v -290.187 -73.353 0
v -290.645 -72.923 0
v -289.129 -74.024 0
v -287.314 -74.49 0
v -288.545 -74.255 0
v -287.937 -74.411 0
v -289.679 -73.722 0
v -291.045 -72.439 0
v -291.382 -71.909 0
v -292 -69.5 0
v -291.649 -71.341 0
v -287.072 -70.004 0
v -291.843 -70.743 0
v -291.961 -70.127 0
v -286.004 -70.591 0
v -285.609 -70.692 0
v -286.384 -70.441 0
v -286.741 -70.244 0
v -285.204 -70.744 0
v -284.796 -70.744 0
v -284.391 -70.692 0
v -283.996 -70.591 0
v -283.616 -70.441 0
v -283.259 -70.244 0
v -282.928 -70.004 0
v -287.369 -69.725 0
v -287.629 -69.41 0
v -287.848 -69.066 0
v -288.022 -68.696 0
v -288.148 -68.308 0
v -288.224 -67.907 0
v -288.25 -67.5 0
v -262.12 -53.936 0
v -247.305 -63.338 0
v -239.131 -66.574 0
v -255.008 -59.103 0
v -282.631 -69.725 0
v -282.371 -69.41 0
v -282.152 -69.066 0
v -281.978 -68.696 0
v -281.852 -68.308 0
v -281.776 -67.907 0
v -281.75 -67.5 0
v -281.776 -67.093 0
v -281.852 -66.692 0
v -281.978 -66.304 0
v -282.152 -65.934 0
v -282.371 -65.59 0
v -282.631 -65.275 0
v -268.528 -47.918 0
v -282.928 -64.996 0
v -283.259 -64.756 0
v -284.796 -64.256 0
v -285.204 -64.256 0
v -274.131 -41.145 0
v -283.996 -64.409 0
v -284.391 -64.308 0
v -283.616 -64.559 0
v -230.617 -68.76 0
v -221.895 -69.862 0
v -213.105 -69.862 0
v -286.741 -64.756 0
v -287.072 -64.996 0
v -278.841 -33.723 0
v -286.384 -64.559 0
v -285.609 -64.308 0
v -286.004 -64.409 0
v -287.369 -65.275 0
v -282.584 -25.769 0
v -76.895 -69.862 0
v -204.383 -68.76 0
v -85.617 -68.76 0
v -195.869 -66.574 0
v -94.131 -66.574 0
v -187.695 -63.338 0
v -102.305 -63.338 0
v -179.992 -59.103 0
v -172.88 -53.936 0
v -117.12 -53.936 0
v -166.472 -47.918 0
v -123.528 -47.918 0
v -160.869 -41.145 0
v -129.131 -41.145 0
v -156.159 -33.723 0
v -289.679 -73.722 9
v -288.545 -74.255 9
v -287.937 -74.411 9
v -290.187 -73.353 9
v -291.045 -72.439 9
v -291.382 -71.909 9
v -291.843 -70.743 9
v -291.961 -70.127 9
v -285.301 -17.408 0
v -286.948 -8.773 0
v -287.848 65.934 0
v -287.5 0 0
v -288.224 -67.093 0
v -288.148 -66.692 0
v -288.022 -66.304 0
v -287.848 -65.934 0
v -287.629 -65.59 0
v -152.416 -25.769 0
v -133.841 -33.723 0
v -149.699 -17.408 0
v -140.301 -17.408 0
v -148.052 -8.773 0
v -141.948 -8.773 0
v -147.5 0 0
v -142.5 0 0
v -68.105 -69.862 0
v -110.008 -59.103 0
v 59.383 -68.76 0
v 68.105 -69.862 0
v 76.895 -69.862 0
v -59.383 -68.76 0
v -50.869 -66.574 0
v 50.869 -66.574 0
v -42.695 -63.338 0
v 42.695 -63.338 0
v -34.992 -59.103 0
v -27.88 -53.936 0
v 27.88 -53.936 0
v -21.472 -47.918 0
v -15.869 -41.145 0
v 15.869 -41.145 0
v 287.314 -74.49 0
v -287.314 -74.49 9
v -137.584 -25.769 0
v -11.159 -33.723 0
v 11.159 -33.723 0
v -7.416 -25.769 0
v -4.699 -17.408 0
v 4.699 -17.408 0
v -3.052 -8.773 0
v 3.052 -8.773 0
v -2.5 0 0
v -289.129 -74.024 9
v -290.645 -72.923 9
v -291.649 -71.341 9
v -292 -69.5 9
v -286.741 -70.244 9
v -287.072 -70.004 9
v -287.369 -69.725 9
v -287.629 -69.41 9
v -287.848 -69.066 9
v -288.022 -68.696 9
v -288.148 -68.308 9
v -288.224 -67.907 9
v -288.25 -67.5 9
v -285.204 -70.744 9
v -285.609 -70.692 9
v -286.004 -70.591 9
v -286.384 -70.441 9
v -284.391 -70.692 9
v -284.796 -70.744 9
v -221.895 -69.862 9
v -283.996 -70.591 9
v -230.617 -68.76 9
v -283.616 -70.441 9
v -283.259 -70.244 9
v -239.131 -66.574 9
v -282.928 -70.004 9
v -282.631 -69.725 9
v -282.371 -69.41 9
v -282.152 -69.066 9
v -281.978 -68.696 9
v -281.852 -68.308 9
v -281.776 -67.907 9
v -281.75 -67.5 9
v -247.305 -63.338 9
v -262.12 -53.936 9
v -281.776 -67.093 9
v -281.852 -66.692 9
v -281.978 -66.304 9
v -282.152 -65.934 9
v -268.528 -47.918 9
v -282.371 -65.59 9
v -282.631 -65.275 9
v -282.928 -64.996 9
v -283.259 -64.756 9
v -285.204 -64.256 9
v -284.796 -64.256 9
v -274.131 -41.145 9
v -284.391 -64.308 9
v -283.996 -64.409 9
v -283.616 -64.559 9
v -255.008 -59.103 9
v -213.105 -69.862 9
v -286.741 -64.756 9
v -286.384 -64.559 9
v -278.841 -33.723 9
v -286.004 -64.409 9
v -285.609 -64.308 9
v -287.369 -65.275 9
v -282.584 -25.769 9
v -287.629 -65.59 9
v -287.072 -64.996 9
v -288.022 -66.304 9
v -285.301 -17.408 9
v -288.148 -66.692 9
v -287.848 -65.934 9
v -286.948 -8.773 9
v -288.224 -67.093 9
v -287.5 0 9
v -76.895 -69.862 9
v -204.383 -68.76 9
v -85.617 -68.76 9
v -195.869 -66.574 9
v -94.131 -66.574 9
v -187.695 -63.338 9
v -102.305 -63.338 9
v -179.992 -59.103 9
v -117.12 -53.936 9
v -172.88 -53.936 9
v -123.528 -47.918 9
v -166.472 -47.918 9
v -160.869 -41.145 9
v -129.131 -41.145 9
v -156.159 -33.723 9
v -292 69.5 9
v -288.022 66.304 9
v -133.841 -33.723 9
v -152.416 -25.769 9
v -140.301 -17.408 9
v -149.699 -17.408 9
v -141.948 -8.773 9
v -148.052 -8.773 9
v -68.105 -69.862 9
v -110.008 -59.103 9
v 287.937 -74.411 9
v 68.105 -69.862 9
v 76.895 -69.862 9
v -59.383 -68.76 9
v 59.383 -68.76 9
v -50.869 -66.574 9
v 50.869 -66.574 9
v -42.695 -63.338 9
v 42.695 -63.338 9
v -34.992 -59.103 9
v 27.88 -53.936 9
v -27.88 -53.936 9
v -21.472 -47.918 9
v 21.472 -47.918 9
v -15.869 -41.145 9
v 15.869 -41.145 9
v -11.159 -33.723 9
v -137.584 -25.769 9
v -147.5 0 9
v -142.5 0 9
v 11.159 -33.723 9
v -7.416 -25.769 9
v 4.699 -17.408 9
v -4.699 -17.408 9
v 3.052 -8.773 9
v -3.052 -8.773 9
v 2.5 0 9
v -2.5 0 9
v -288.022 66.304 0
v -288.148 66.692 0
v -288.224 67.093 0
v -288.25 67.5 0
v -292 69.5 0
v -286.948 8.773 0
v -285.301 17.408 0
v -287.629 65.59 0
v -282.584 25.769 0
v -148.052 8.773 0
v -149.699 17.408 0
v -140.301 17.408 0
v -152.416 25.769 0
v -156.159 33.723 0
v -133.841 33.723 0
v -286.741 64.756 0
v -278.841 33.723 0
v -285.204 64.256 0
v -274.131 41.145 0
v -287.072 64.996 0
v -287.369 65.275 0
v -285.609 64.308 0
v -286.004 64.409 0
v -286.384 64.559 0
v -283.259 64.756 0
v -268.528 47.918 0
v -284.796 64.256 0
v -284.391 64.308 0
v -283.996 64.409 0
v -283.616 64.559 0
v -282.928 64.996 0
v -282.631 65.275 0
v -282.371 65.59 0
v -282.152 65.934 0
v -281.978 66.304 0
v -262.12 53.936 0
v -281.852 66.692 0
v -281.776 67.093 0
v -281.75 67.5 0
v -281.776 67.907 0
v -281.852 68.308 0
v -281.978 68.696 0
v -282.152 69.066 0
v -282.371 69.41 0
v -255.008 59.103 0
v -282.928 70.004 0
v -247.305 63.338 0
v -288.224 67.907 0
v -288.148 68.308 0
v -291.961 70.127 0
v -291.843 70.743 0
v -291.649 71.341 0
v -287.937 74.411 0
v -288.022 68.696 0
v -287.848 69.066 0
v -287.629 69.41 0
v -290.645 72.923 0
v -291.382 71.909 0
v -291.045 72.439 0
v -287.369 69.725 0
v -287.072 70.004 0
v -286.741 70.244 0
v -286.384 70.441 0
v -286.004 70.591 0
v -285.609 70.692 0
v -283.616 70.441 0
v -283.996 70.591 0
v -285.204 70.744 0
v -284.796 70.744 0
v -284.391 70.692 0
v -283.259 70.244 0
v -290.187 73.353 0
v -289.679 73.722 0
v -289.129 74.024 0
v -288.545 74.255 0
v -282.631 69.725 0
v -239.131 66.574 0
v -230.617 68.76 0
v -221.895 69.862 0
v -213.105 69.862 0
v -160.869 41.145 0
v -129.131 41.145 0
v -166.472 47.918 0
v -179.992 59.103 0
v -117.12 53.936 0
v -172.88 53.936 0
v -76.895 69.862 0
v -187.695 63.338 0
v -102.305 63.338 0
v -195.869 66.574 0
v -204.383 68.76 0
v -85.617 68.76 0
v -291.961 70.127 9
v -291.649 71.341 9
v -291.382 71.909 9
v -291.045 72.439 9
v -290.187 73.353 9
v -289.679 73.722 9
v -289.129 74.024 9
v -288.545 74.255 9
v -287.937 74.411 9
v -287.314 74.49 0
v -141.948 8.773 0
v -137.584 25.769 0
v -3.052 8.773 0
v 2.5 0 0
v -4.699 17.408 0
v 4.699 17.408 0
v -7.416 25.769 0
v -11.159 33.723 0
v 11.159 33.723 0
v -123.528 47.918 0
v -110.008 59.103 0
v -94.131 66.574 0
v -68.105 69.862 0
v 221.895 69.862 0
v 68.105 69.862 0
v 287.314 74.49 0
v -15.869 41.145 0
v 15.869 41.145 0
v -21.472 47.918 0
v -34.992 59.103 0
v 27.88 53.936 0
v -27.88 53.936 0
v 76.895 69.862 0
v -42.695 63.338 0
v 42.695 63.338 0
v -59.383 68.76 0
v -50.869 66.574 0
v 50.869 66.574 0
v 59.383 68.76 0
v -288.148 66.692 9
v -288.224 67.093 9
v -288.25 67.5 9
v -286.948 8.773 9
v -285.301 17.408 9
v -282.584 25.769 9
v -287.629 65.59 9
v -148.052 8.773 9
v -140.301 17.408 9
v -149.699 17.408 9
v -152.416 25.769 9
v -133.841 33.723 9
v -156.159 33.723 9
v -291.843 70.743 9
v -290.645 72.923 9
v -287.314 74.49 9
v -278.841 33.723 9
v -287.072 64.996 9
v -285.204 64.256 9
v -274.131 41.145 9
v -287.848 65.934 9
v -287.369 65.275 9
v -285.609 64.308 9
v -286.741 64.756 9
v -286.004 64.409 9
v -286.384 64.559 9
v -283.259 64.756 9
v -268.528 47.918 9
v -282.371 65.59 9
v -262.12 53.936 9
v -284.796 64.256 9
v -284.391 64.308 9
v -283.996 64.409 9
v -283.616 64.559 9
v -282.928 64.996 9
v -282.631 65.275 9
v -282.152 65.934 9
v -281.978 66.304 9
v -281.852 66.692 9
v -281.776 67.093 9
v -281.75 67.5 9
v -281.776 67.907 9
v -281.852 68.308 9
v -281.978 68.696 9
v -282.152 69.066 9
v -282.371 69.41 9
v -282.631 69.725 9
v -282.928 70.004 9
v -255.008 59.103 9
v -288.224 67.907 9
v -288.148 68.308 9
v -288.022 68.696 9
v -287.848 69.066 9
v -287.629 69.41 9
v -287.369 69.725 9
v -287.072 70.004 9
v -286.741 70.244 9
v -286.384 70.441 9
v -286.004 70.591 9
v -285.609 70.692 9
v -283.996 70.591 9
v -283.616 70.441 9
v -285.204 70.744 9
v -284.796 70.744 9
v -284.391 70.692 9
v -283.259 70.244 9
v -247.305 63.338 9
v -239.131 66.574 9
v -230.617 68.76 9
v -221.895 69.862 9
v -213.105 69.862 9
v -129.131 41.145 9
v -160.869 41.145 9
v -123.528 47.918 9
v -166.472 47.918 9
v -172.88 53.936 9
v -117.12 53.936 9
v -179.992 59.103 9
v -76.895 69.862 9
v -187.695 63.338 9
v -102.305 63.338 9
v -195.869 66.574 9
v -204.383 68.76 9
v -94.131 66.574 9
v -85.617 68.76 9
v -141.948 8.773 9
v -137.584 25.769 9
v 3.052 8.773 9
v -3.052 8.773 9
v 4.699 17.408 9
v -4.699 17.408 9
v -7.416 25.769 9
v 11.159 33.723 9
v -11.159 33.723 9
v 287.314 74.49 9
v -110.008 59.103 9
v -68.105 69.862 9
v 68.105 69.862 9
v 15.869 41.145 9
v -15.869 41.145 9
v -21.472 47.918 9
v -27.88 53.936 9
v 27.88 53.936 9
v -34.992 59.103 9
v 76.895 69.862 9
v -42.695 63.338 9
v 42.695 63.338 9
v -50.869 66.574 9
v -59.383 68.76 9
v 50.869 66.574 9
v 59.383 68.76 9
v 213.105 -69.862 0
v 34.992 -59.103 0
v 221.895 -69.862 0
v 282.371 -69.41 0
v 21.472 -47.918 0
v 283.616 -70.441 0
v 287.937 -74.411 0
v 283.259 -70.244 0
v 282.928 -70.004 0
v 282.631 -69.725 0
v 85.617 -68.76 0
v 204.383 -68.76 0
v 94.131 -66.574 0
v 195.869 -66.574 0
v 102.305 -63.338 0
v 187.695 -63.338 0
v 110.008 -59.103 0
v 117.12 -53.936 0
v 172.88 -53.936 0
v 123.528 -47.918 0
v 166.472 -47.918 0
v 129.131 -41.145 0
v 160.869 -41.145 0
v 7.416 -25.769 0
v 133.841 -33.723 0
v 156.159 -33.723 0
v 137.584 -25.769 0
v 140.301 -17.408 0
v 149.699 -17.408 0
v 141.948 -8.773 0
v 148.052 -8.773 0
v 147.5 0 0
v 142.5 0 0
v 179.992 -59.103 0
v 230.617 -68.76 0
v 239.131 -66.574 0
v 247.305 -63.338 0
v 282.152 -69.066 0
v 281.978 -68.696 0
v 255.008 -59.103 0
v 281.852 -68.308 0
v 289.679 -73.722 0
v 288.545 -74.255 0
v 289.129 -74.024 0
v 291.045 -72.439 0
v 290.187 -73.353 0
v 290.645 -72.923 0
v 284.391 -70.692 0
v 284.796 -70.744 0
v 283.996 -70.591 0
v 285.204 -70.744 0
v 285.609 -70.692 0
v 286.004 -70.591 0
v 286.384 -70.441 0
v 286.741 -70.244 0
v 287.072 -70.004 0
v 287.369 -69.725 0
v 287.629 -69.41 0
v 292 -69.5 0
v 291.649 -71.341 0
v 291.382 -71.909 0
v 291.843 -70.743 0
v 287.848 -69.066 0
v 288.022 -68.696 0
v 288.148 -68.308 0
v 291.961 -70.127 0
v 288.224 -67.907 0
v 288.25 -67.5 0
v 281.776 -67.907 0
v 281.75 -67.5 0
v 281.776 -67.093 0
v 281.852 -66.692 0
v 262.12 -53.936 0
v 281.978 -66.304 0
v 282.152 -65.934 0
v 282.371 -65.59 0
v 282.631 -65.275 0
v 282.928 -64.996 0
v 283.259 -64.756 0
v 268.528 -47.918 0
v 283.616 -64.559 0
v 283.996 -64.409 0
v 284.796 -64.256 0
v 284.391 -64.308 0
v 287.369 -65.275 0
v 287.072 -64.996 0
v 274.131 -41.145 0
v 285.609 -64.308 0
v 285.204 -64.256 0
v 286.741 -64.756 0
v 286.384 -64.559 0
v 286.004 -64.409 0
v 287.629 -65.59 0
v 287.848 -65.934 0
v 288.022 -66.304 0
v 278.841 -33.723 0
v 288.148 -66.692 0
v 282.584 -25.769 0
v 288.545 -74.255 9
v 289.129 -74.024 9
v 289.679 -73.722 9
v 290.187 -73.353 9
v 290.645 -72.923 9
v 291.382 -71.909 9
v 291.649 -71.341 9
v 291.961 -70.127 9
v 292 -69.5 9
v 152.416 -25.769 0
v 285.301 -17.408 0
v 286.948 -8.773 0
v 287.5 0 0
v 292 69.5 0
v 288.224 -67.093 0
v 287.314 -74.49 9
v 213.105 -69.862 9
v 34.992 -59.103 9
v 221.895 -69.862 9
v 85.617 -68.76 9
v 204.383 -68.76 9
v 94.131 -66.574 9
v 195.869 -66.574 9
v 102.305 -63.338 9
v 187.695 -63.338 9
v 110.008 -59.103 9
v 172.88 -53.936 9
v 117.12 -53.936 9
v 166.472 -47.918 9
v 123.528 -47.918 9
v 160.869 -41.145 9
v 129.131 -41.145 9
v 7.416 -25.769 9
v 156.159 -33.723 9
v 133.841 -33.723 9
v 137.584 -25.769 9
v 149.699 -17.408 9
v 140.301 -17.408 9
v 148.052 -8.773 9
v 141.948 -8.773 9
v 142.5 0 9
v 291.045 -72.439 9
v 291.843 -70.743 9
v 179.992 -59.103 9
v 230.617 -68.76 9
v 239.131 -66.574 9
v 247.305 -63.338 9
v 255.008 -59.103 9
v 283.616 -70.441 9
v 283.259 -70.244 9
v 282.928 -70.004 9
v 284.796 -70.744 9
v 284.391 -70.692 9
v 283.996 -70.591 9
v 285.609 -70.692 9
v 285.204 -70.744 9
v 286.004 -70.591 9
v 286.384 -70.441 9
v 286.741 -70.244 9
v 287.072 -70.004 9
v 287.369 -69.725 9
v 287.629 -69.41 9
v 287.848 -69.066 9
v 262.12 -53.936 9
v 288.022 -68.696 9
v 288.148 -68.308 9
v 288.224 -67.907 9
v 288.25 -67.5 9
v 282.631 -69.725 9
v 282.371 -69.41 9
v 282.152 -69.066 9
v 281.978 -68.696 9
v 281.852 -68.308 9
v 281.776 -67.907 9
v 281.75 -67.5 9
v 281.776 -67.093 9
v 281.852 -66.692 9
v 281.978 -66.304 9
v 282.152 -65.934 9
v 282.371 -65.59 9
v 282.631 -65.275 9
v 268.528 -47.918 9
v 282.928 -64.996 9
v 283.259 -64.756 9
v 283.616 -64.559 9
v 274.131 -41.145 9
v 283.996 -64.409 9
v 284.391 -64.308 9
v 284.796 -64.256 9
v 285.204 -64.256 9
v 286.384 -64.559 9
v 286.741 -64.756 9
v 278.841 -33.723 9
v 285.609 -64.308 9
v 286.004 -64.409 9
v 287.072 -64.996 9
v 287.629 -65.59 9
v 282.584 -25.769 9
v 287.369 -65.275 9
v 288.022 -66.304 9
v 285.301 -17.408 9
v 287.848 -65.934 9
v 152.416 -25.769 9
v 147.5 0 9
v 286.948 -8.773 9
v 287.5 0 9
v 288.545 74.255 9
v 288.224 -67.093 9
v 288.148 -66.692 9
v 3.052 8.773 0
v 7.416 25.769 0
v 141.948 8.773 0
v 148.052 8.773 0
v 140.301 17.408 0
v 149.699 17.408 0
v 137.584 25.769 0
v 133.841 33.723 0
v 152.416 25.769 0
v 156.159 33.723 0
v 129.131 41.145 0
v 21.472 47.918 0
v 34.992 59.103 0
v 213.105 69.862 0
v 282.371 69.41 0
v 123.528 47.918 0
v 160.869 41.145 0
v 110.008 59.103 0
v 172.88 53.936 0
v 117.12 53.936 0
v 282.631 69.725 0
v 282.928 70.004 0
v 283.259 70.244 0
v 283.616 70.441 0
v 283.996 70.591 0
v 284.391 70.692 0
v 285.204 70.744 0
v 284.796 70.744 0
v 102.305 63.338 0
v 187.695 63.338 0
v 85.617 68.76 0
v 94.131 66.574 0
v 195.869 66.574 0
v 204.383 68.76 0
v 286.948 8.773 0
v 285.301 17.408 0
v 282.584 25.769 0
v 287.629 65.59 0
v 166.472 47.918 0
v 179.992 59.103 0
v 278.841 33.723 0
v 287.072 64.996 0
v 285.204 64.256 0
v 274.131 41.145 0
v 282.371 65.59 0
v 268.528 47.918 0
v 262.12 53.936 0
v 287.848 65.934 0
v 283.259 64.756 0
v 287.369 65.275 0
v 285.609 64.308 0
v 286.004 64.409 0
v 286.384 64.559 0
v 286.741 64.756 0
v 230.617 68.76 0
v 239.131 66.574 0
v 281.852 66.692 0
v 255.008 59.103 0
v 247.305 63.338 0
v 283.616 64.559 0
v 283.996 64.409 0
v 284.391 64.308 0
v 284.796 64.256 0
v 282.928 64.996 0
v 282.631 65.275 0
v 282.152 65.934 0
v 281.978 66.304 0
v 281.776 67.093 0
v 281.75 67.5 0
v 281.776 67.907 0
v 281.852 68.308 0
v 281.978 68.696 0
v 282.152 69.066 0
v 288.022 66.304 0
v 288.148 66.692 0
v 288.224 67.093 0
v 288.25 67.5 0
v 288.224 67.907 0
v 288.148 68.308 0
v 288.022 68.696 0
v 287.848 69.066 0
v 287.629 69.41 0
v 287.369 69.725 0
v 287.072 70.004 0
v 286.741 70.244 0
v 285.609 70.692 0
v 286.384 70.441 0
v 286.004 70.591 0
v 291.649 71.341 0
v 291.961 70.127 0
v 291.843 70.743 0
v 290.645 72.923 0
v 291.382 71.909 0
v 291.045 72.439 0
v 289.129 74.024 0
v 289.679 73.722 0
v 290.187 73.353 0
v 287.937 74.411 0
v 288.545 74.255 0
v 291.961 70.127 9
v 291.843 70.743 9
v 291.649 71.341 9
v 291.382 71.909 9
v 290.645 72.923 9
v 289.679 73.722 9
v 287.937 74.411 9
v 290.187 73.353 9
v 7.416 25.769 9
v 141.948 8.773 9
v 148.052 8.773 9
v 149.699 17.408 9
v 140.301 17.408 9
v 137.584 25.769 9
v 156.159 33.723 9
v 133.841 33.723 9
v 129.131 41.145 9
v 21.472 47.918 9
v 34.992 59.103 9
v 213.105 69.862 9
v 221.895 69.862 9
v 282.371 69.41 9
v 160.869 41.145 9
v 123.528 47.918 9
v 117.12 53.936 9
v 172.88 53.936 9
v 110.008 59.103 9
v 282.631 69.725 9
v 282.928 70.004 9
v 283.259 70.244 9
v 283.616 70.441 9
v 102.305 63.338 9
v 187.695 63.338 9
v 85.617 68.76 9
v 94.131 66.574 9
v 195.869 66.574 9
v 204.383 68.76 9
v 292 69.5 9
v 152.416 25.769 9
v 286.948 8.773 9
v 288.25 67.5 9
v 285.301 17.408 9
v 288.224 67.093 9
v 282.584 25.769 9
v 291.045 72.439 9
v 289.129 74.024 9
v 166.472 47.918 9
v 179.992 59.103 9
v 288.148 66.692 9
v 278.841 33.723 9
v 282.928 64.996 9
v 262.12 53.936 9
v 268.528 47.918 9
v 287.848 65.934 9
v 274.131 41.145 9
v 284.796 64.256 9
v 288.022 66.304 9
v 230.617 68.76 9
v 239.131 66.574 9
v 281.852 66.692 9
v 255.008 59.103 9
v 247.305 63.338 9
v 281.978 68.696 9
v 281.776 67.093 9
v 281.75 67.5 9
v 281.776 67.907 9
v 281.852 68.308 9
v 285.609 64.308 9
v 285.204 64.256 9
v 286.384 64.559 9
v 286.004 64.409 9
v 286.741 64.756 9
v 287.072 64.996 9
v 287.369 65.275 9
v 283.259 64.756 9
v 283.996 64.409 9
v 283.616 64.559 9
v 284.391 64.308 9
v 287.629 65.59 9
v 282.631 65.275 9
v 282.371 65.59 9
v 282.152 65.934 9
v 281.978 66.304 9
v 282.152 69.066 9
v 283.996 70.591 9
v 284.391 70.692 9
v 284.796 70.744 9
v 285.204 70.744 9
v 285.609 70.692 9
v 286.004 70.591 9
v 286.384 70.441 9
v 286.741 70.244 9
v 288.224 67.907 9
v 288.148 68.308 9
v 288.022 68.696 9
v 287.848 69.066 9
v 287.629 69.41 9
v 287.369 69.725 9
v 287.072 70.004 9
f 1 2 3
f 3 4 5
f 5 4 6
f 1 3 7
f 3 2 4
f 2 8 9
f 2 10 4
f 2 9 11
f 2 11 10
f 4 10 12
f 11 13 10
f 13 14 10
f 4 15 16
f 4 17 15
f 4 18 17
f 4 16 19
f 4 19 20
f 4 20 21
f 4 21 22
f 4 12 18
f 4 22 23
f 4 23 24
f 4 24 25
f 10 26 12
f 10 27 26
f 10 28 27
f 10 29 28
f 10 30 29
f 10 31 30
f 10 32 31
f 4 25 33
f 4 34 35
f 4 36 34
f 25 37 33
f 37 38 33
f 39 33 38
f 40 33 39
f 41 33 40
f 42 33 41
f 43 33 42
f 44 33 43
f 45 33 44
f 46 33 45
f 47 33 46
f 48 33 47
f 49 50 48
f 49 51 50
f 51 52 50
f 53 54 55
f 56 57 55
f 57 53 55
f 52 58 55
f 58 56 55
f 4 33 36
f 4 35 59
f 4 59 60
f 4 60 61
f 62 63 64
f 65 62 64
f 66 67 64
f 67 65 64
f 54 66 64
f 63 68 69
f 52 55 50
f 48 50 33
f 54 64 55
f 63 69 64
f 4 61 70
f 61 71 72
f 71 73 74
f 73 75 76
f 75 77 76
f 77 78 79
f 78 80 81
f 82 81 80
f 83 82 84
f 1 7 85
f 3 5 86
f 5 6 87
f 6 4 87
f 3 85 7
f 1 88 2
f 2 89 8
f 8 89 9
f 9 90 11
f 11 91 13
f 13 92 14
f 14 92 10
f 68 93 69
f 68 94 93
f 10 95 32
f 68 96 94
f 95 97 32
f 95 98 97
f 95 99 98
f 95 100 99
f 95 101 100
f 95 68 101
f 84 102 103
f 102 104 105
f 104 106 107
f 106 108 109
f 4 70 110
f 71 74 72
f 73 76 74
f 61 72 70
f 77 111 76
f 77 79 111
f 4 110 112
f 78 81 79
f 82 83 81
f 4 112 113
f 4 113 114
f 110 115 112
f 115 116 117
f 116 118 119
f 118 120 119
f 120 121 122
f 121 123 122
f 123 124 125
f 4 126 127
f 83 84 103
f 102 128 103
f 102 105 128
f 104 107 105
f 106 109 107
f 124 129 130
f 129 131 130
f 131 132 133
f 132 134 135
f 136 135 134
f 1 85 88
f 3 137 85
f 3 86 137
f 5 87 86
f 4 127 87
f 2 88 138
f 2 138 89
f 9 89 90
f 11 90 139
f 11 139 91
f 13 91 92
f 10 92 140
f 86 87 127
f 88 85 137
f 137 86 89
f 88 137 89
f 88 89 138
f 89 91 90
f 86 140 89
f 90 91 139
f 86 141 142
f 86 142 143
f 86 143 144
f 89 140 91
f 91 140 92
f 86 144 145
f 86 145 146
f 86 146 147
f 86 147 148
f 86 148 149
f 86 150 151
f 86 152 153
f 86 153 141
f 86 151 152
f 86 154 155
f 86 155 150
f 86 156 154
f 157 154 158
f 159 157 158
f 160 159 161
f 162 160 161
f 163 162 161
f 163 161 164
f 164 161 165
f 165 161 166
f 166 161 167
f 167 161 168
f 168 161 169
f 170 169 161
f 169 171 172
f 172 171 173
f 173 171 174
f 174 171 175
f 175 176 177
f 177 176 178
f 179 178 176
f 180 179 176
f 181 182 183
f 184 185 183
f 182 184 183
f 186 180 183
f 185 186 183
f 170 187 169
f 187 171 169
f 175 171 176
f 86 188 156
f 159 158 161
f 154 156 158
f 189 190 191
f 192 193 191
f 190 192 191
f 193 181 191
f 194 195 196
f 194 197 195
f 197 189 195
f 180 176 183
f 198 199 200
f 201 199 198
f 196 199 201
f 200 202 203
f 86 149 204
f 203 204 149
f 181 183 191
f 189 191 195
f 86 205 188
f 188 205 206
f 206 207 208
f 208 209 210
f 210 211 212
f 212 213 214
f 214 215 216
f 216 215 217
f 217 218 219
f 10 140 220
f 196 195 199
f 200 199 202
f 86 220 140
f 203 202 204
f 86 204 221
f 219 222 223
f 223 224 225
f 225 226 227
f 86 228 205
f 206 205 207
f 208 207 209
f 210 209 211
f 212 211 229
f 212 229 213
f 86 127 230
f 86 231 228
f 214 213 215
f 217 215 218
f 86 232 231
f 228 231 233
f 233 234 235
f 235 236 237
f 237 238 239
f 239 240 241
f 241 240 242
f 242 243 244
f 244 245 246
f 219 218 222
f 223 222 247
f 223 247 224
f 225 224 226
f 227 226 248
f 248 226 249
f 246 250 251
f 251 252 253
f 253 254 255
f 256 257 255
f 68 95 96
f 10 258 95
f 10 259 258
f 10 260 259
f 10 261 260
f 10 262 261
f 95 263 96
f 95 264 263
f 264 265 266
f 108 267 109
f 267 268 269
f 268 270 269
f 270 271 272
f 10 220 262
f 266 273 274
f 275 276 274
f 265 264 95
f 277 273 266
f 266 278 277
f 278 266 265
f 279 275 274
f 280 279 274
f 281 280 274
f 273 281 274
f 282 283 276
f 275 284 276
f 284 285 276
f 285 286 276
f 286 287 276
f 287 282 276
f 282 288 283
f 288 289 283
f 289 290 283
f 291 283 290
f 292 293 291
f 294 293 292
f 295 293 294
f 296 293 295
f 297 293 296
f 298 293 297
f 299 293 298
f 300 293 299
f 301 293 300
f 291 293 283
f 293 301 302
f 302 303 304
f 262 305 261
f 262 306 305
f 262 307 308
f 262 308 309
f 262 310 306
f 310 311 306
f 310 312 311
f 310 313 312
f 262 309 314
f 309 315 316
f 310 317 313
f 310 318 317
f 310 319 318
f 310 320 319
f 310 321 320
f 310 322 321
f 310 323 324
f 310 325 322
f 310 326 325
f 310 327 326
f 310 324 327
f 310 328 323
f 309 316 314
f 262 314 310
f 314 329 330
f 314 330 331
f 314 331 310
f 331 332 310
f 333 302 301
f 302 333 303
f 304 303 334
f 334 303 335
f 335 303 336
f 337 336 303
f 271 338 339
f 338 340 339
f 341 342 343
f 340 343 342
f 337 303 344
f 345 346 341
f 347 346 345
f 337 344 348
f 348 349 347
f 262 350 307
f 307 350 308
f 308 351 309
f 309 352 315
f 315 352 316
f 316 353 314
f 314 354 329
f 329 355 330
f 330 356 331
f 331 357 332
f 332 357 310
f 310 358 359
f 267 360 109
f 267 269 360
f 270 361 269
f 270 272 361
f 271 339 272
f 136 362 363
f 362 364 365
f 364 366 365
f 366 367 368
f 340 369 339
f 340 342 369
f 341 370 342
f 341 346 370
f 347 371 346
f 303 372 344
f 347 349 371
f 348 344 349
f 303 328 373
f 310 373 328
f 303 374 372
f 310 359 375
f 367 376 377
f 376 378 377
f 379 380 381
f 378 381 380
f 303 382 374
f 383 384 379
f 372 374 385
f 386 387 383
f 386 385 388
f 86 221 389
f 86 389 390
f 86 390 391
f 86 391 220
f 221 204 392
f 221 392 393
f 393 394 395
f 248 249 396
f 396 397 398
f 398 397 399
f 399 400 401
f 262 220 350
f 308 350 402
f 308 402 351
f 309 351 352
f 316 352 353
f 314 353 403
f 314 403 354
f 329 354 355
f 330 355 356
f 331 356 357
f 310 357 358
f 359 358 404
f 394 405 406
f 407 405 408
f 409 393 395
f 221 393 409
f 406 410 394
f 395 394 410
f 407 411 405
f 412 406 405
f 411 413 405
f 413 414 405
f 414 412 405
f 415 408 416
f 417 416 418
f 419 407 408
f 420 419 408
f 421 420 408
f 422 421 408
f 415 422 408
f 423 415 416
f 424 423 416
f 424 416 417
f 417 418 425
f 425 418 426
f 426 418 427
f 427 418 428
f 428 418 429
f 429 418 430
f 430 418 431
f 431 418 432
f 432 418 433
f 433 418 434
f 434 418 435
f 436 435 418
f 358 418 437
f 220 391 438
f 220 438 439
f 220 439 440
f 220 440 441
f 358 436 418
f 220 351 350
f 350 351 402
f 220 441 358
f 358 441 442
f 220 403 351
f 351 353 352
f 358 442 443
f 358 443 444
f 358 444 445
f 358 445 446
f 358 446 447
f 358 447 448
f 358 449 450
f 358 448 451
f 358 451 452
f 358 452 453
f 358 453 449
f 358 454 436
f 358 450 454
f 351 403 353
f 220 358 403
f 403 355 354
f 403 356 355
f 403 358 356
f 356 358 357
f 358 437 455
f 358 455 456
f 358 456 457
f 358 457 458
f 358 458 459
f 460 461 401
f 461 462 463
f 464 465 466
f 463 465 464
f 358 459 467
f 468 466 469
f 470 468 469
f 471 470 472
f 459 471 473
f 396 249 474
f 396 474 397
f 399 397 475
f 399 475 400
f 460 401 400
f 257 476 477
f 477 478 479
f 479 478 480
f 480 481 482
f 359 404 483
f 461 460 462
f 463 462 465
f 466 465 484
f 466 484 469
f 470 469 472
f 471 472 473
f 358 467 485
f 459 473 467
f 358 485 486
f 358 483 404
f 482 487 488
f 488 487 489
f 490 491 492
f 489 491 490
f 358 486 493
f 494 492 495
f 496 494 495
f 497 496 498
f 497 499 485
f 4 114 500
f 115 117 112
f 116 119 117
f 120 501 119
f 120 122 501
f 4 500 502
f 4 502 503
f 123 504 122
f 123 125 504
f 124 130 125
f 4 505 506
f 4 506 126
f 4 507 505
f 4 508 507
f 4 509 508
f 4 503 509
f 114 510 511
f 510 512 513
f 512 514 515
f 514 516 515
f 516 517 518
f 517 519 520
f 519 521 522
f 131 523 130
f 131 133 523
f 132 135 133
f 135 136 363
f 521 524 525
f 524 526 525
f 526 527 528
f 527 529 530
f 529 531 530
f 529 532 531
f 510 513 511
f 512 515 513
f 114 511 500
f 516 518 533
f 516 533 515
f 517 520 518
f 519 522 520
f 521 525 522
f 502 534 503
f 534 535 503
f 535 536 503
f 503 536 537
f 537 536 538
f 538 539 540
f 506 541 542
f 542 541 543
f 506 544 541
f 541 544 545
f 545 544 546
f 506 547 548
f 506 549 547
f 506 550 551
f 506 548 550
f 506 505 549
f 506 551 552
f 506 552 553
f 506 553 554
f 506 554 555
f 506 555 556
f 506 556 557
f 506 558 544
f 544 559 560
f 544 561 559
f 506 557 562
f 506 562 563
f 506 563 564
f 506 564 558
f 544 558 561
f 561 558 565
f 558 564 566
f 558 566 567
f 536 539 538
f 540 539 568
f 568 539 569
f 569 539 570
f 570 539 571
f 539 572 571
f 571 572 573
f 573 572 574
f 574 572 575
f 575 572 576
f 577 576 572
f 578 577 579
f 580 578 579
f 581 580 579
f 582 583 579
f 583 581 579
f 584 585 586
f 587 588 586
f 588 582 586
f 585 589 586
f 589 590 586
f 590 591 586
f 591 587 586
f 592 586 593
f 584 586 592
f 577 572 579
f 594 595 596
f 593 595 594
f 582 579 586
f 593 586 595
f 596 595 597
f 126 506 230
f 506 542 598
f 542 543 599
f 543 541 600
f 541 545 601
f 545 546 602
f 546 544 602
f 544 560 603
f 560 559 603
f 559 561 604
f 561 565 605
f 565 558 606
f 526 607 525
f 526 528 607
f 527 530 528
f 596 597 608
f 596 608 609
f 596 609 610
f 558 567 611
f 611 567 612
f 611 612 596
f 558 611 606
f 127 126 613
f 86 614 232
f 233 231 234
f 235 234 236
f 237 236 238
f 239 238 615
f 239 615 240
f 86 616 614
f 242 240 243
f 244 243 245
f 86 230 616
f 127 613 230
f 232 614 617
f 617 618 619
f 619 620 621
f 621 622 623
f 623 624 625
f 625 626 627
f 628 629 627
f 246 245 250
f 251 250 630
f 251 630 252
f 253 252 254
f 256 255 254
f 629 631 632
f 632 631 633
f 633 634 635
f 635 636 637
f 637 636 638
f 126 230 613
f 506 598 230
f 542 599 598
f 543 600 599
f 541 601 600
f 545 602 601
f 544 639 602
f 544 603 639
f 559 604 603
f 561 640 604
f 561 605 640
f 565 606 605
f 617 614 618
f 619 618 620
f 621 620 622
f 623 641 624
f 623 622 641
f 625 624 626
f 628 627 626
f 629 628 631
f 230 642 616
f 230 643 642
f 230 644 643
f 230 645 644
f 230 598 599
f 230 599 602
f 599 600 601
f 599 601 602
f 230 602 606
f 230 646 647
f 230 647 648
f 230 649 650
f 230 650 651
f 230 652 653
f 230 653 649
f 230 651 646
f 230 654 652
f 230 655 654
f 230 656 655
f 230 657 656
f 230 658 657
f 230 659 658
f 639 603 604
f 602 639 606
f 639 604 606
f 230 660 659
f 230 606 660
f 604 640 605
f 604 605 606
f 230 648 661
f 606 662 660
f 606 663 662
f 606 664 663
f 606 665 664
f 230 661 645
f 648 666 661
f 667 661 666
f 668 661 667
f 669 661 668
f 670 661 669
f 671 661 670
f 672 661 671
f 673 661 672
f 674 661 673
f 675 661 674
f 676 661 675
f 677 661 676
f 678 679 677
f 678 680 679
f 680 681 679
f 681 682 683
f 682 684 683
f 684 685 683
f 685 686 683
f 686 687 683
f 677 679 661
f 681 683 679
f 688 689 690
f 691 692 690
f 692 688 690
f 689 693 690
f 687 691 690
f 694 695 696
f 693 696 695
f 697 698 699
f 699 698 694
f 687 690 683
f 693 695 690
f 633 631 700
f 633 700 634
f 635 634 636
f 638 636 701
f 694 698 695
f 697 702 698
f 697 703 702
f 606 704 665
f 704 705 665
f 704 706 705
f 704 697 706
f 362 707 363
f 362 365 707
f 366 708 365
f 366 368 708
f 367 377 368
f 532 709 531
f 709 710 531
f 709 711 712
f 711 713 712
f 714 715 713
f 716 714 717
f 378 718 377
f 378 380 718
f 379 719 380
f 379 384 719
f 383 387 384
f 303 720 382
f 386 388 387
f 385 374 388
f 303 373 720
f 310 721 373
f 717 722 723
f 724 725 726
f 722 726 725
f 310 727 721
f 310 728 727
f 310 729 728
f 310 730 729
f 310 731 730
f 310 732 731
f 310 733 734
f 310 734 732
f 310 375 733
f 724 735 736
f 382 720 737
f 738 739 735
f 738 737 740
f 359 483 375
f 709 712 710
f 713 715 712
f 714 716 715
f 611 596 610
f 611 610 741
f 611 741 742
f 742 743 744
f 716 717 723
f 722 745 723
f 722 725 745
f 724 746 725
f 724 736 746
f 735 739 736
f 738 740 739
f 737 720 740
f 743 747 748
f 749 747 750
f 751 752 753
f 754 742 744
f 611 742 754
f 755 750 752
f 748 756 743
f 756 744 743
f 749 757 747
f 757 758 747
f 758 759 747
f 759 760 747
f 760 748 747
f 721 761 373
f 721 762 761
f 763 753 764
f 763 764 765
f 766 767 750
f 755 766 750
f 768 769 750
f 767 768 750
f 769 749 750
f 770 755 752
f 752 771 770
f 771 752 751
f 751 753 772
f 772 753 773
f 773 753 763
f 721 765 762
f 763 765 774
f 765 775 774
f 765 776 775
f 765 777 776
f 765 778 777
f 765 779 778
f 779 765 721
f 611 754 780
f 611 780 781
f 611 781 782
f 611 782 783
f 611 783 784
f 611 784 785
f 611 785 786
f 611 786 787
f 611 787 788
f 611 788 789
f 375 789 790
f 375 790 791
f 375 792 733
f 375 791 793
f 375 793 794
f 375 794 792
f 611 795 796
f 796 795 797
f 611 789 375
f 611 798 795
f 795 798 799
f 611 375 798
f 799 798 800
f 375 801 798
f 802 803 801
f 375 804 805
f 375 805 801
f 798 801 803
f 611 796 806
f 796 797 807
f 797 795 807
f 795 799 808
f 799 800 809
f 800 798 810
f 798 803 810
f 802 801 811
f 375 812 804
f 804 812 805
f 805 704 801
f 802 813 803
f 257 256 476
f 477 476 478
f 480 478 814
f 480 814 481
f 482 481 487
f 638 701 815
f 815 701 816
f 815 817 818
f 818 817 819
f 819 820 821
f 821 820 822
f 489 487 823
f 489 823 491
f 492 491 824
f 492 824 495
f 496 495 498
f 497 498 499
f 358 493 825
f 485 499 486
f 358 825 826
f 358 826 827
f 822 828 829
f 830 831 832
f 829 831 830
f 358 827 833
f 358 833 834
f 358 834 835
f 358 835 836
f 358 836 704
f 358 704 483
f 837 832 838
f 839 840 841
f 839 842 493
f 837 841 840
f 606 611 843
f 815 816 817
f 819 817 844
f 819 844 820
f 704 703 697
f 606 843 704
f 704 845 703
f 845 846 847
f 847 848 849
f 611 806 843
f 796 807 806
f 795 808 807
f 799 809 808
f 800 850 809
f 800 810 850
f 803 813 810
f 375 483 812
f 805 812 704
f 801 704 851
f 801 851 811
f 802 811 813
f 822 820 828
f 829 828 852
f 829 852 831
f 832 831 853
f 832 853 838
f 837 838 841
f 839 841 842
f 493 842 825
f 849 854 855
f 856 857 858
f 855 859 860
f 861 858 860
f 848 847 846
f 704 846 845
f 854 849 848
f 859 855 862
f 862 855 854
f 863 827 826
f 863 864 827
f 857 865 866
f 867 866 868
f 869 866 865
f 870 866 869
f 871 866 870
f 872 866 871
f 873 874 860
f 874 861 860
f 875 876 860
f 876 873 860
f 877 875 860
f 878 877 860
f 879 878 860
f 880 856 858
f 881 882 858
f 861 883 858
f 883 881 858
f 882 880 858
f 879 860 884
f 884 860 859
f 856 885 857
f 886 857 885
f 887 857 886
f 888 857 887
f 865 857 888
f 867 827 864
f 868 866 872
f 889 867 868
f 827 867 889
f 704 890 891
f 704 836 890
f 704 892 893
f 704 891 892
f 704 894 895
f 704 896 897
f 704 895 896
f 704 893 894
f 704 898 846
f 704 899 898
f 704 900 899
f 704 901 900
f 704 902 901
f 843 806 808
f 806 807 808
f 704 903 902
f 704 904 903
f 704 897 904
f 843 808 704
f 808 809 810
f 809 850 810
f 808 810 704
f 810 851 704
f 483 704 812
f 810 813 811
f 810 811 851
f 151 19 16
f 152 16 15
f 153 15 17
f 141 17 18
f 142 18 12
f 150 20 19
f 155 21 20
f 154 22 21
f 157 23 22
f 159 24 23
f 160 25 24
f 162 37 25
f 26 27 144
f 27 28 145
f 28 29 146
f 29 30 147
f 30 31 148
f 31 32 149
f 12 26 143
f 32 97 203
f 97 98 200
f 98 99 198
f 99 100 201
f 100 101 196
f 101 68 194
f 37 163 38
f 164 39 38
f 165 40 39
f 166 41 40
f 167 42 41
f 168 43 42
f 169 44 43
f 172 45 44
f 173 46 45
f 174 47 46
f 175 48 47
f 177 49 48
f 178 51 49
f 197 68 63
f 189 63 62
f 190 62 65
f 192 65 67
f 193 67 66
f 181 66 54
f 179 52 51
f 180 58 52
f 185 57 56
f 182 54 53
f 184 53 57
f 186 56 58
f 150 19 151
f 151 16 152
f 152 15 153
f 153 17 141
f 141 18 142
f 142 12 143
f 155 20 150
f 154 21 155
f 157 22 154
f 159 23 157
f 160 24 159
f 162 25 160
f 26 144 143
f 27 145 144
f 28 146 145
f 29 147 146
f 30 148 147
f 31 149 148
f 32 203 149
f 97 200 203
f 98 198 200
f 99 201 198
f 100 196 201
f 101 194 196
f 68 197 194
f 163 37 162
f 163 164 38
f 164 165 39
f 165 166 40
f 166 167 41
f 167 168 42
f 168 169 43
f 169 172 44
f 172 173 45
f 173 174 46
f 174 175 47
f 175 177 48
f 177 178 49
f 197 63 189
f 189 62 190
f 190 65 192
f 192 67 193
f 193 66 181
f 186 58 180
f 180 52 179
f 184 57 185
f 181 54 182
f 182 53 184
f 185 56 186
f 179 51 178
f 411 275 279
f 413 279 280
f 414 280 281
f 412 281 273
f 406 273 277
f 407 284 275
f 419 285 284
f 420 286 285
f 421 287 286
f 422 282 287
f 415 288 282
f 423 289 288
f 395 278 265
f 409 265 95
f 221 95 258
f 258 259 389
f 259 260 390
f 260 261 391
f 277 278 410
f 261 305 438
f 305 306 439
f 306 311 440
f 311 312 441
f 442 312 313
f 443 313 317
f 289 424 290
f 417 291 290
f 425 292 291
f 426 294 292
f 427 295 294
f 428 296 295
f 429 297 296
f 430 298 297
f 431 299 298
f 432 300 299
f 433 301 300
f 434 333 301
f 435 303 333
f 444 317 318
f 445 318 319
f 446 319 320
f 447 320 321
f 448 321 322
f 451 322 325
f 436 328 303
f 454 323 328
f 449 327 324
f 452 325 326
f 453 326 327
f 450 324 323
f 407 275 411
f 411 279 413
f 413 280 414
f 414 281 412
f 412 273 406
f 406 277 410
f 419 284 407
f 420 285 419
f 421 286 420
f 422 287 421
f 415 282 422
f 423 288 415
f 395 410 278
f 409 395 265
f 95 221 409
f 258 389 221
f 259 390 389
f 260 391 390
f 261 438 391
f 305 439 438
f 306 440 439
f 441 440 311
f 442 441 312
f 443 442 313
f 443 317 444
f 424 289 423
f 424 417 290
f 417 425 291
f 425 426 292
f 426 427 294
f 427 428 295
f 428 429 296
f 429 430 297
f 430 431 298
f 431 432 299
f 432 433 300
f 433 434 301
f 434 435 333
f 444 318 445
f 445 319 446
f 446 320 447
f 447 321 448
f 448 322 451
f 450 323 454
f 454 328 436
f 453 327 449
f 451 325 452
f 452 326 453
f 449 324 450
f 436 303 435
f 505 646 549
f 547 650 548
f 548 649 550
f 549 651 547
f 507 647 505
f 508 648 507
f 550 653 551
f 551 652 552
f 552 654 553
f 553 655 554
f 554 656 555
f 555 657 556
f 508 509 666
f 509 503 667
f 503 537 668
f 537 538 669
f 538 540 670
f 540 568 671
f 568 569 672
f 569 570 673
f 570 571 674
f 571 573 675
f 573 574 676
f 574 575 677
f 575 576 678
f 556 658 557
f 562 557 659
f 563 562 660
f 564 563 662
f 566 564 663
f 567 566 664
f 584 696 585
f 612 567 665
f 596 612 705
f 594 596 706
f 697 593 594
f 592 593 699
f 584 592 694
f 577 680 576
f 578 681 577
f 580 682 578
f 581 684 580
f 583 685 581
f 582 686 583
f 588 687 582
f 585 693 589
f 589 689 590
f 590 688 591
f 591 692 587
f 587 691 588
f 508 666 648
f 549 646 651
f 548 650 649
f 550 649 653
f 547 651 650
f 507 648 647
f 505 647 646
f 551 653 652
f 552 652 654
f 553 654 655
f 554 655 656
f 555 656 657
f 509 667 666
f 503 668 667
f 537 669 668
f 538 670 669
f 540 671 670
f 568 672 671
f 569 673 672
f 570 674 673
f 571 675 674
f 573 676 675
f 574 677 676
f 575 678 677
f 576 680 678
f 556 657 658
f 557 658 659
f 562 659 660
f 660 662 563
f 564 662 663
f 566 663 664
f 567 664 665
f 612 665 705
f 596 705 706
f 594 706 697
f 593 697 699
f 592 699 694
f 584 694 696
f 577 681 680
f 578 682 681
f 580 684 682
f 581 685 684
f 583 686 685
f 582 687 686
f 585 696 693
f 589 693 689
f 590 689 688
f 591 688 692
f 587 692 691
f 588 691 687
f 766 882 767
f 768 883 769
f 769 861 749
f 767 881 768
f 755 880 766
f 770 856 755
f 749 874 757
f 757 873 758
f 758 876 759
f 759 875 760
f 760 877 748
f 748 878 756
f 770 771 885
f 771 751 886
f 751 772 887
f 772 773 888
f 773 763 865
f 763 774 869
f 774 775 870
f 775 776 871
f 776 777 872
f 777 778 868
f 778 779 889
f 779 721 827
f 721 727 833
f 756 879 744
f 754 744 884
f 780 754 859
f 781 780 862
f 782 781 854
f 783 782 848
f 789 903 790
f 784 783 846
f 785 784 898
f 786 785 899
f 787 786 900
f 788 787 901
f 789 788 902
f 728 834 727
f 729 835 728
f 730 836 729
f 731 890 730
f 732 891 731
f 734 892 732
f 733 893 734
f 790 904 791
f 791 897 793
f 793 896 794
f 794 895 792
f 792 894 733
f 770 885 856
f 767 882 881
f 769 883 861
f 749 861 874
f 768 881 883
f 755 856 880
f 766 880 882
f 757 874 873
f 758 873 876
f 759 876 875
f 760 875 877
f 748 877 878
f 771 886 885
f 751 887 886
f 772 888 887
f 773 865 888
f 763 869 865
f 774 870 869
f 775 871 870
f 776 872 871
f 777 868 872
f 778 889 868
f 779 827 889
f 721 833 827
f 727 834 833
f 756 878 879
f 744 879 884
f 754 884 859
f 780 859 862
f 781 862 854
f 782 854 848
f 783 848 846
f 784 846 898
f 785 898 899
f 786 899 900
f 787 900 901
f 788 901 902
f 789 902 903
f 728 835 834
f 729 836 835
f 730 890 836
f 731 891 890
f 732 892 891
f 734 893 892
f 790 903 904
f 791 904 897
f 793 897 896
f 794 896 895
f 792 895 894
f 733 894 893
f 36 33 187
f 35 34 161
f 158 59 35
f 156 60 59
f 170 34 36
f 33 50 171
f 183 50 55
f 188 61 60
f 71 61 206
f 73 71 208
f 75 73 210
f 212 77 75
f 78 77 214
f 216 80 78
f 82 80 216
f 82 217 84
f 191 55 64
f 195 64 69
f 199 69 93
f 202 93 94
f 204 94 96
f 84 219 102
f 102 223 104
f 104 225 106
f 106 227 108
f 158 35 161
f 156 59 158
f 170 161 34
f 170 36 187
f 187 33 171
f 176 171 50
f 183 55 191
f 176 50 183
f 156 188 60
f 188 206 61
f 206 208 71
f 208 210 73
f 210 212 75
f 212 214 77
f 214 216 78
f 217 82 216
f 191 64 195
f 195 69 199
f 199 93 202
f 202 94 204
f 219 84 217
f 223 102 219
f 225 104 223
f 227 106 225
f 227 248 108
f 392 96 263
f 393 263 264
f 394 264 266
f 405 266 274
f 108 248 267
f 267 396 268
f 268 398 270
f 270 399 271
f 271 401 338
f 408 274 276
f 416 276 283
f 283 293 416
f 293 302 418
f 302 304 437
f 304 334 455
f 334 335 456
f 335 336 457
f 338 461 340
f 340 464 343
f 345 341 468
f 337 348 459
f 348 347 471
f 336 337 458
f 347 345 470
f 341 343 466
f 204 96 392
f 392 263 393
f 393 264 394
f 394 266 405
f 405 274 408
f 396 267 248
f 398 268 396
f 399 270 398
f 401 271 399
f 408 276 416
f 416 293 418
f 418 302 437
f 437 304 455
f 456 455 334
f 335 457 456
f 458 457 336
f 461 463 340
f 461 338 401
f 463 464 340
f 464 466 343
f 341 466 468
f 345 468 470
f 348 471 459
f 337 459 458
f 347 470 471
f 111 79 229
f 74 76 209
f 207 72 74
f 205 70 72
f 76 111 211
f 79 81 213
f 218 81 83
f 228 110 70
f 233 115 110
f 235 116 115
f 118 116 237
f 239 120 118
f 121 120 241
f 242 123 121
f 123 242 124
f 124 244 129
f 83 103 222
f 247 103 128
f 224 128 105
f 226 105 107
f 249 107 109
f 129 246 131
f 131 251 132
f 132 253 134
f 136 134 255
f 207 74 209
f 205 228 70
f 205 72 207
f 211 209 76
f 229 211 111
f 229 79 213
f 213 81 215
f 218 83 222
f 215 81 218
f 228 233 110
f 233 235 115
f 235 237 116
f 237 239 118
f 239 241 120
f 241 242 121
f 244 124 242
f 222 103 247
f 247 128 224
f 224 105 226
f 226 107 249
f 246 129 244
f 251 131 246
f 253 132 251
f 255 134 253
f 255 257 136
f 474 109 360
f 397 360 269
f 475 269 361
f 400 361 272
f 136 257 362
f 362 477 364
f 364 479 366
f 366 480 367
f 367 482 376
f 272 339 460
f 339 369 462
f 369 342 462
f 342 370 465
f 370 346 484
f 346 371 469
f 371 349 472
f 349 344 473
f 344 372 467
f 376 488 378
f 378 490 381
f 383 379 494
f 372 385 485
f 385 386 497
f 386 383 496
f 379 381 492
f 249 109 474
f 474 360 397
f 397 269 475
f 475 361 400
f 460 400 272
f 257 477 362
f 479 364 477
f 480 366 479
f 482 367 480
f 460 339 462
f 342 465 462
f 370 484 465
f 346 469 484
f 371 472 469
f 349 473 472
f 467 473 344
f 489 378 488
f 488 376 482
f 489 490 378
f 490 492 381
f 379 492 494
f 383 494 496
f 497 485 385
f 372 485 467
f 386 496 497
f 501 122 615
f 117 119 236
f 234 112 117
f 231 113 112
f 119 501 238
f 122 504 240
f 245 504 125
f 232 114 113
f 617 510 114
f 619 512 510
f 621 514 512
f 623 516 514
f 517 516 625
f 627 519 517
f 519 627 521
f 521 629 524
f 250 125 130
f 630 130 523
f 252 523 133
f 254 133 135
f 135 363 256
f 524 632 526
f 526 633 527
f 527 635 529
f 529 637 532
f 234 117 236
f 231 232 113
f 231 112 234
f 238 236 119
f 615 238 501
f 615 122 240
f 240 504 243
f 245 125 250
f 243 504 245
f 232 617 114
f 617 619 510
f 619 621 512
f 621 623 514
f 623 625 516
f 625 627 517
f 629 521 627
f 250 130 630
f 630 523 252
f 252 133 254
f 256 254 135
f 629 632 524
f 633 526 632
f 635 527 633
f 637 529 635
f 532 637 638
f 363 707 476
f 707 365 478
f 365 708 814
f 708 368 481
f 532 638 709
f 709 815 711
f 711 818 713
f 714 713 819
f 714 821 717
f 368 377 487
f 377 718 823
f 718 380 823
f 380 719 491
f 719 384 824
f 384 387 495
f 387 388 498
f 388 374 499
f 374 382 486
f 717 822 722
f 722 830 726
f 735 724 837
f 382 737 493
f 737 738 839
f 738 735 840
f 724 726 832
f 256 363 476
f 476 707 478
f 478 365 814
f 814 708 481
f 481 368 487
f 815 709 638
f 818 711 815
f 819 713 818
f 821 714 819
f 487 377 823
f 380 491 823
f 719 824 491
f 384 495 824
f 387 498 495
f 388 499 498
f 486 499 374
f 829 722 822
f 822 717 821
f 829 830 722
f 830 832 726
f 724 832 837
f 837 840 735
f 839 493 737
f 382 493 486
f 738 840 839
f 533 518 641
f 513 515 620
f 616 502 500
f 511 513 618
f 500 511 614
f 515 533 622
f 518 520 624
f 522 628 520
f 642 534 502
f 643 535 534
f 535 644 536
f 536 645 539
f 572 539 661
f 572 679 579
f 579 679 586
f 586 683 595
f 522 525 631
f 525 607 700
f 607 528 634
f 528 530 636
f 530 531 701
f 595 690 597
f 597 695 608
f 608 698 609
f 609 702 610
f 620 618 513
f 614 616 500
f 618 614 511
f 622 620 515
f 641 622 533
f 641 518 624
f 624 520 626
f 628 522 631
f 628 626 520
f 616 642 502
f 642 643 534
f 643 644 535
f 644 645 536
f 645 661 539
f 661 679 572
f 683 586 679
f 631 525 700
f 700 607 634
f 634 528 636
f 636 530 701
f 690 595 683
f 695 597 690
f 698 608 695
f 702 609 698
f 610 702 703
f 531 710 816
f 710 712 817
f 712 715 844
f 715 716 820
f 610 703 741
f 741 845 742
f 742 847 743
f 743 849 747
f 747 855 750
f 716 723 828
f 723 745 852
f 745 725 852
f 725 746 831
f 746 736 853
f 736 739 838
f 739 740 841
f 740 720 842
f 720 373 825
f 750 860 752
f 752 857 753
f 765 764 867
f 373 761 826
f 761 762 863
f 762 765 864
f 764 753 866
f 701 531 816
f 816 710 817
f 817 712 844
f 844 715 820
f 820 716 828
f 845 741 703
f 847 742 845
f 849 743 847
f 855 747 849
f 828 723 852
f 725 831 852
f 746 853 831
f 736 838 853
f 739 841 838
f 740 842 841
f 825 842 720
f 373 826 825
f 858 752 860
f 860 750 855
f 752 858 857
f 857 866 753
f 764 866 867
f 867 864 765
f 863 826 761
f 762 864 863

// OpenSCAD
$fn = 50;

difference() {
	union() {
		hull() {
			translate(v = [-287.0, 69.5, 0]) {
				cylinder(h = 9, r = 5);
			}
			translate(v = [287.0, 69.5, 0]) {
				cylinder(h = 9, r = 5);
			}
			translate(v = [-287.0, -69.5, 0]) {
				cylinder(h = 9, r = 5);
			}
			translate(v = [287.0, -69.5, 0]) {
				cylinder(h = 9, r = 5);
			}
		}
	}
	union() {
		translate(v = [-285.0, -67.5, -100.0]) {
			cylinder(h = 200, r = 3.25);
		}
		translate(v = [-285.0, 67.5, -100.0]) {
			cylinder(h = 200, r = 3.25);
		}
		translate(v = [285.0, -67.5, -100.0]) {
			cylinder(h = 200, r = 3.25);
		}
		translate(v = [285.0, 67.5, -100.0]) {
			cylinder(h = 200, r = 3.25);
		}
		translate(v = [-285.0, -67.5, -100.0]) {
			cylinder(h = 200, r = 1.8);
		}
		translate(v = [-285.0, 67.5, -100.0]) {
			cylinder(h = 200, r = 1.8);
		}
		translate(v = [285.0, -67.5, -100.0]) {
			cylinder(h = 200, r = 1.8);
		}
		translate(v = [285.0, 67.5, -100.0]) {
			cylinder(h = 200, r = 1.8);
		}
		translate(v = [-217.5, 0, 0.0]) {
			cylinder(h = 9, r = 70.0);
		}
		translate(v = [-72.5, 0, 0.0]) {
			cylinder(h = 9, r = 70.0);
		}
		translate(v = [72.5, 0, 0.0]) {
			cylinder(h = 9, r = 70.0);
		}
		translate(v = [217.5, 0, 0.0]) {
			cylinder(h = 9, r = 70.0);
		}
	}
}
